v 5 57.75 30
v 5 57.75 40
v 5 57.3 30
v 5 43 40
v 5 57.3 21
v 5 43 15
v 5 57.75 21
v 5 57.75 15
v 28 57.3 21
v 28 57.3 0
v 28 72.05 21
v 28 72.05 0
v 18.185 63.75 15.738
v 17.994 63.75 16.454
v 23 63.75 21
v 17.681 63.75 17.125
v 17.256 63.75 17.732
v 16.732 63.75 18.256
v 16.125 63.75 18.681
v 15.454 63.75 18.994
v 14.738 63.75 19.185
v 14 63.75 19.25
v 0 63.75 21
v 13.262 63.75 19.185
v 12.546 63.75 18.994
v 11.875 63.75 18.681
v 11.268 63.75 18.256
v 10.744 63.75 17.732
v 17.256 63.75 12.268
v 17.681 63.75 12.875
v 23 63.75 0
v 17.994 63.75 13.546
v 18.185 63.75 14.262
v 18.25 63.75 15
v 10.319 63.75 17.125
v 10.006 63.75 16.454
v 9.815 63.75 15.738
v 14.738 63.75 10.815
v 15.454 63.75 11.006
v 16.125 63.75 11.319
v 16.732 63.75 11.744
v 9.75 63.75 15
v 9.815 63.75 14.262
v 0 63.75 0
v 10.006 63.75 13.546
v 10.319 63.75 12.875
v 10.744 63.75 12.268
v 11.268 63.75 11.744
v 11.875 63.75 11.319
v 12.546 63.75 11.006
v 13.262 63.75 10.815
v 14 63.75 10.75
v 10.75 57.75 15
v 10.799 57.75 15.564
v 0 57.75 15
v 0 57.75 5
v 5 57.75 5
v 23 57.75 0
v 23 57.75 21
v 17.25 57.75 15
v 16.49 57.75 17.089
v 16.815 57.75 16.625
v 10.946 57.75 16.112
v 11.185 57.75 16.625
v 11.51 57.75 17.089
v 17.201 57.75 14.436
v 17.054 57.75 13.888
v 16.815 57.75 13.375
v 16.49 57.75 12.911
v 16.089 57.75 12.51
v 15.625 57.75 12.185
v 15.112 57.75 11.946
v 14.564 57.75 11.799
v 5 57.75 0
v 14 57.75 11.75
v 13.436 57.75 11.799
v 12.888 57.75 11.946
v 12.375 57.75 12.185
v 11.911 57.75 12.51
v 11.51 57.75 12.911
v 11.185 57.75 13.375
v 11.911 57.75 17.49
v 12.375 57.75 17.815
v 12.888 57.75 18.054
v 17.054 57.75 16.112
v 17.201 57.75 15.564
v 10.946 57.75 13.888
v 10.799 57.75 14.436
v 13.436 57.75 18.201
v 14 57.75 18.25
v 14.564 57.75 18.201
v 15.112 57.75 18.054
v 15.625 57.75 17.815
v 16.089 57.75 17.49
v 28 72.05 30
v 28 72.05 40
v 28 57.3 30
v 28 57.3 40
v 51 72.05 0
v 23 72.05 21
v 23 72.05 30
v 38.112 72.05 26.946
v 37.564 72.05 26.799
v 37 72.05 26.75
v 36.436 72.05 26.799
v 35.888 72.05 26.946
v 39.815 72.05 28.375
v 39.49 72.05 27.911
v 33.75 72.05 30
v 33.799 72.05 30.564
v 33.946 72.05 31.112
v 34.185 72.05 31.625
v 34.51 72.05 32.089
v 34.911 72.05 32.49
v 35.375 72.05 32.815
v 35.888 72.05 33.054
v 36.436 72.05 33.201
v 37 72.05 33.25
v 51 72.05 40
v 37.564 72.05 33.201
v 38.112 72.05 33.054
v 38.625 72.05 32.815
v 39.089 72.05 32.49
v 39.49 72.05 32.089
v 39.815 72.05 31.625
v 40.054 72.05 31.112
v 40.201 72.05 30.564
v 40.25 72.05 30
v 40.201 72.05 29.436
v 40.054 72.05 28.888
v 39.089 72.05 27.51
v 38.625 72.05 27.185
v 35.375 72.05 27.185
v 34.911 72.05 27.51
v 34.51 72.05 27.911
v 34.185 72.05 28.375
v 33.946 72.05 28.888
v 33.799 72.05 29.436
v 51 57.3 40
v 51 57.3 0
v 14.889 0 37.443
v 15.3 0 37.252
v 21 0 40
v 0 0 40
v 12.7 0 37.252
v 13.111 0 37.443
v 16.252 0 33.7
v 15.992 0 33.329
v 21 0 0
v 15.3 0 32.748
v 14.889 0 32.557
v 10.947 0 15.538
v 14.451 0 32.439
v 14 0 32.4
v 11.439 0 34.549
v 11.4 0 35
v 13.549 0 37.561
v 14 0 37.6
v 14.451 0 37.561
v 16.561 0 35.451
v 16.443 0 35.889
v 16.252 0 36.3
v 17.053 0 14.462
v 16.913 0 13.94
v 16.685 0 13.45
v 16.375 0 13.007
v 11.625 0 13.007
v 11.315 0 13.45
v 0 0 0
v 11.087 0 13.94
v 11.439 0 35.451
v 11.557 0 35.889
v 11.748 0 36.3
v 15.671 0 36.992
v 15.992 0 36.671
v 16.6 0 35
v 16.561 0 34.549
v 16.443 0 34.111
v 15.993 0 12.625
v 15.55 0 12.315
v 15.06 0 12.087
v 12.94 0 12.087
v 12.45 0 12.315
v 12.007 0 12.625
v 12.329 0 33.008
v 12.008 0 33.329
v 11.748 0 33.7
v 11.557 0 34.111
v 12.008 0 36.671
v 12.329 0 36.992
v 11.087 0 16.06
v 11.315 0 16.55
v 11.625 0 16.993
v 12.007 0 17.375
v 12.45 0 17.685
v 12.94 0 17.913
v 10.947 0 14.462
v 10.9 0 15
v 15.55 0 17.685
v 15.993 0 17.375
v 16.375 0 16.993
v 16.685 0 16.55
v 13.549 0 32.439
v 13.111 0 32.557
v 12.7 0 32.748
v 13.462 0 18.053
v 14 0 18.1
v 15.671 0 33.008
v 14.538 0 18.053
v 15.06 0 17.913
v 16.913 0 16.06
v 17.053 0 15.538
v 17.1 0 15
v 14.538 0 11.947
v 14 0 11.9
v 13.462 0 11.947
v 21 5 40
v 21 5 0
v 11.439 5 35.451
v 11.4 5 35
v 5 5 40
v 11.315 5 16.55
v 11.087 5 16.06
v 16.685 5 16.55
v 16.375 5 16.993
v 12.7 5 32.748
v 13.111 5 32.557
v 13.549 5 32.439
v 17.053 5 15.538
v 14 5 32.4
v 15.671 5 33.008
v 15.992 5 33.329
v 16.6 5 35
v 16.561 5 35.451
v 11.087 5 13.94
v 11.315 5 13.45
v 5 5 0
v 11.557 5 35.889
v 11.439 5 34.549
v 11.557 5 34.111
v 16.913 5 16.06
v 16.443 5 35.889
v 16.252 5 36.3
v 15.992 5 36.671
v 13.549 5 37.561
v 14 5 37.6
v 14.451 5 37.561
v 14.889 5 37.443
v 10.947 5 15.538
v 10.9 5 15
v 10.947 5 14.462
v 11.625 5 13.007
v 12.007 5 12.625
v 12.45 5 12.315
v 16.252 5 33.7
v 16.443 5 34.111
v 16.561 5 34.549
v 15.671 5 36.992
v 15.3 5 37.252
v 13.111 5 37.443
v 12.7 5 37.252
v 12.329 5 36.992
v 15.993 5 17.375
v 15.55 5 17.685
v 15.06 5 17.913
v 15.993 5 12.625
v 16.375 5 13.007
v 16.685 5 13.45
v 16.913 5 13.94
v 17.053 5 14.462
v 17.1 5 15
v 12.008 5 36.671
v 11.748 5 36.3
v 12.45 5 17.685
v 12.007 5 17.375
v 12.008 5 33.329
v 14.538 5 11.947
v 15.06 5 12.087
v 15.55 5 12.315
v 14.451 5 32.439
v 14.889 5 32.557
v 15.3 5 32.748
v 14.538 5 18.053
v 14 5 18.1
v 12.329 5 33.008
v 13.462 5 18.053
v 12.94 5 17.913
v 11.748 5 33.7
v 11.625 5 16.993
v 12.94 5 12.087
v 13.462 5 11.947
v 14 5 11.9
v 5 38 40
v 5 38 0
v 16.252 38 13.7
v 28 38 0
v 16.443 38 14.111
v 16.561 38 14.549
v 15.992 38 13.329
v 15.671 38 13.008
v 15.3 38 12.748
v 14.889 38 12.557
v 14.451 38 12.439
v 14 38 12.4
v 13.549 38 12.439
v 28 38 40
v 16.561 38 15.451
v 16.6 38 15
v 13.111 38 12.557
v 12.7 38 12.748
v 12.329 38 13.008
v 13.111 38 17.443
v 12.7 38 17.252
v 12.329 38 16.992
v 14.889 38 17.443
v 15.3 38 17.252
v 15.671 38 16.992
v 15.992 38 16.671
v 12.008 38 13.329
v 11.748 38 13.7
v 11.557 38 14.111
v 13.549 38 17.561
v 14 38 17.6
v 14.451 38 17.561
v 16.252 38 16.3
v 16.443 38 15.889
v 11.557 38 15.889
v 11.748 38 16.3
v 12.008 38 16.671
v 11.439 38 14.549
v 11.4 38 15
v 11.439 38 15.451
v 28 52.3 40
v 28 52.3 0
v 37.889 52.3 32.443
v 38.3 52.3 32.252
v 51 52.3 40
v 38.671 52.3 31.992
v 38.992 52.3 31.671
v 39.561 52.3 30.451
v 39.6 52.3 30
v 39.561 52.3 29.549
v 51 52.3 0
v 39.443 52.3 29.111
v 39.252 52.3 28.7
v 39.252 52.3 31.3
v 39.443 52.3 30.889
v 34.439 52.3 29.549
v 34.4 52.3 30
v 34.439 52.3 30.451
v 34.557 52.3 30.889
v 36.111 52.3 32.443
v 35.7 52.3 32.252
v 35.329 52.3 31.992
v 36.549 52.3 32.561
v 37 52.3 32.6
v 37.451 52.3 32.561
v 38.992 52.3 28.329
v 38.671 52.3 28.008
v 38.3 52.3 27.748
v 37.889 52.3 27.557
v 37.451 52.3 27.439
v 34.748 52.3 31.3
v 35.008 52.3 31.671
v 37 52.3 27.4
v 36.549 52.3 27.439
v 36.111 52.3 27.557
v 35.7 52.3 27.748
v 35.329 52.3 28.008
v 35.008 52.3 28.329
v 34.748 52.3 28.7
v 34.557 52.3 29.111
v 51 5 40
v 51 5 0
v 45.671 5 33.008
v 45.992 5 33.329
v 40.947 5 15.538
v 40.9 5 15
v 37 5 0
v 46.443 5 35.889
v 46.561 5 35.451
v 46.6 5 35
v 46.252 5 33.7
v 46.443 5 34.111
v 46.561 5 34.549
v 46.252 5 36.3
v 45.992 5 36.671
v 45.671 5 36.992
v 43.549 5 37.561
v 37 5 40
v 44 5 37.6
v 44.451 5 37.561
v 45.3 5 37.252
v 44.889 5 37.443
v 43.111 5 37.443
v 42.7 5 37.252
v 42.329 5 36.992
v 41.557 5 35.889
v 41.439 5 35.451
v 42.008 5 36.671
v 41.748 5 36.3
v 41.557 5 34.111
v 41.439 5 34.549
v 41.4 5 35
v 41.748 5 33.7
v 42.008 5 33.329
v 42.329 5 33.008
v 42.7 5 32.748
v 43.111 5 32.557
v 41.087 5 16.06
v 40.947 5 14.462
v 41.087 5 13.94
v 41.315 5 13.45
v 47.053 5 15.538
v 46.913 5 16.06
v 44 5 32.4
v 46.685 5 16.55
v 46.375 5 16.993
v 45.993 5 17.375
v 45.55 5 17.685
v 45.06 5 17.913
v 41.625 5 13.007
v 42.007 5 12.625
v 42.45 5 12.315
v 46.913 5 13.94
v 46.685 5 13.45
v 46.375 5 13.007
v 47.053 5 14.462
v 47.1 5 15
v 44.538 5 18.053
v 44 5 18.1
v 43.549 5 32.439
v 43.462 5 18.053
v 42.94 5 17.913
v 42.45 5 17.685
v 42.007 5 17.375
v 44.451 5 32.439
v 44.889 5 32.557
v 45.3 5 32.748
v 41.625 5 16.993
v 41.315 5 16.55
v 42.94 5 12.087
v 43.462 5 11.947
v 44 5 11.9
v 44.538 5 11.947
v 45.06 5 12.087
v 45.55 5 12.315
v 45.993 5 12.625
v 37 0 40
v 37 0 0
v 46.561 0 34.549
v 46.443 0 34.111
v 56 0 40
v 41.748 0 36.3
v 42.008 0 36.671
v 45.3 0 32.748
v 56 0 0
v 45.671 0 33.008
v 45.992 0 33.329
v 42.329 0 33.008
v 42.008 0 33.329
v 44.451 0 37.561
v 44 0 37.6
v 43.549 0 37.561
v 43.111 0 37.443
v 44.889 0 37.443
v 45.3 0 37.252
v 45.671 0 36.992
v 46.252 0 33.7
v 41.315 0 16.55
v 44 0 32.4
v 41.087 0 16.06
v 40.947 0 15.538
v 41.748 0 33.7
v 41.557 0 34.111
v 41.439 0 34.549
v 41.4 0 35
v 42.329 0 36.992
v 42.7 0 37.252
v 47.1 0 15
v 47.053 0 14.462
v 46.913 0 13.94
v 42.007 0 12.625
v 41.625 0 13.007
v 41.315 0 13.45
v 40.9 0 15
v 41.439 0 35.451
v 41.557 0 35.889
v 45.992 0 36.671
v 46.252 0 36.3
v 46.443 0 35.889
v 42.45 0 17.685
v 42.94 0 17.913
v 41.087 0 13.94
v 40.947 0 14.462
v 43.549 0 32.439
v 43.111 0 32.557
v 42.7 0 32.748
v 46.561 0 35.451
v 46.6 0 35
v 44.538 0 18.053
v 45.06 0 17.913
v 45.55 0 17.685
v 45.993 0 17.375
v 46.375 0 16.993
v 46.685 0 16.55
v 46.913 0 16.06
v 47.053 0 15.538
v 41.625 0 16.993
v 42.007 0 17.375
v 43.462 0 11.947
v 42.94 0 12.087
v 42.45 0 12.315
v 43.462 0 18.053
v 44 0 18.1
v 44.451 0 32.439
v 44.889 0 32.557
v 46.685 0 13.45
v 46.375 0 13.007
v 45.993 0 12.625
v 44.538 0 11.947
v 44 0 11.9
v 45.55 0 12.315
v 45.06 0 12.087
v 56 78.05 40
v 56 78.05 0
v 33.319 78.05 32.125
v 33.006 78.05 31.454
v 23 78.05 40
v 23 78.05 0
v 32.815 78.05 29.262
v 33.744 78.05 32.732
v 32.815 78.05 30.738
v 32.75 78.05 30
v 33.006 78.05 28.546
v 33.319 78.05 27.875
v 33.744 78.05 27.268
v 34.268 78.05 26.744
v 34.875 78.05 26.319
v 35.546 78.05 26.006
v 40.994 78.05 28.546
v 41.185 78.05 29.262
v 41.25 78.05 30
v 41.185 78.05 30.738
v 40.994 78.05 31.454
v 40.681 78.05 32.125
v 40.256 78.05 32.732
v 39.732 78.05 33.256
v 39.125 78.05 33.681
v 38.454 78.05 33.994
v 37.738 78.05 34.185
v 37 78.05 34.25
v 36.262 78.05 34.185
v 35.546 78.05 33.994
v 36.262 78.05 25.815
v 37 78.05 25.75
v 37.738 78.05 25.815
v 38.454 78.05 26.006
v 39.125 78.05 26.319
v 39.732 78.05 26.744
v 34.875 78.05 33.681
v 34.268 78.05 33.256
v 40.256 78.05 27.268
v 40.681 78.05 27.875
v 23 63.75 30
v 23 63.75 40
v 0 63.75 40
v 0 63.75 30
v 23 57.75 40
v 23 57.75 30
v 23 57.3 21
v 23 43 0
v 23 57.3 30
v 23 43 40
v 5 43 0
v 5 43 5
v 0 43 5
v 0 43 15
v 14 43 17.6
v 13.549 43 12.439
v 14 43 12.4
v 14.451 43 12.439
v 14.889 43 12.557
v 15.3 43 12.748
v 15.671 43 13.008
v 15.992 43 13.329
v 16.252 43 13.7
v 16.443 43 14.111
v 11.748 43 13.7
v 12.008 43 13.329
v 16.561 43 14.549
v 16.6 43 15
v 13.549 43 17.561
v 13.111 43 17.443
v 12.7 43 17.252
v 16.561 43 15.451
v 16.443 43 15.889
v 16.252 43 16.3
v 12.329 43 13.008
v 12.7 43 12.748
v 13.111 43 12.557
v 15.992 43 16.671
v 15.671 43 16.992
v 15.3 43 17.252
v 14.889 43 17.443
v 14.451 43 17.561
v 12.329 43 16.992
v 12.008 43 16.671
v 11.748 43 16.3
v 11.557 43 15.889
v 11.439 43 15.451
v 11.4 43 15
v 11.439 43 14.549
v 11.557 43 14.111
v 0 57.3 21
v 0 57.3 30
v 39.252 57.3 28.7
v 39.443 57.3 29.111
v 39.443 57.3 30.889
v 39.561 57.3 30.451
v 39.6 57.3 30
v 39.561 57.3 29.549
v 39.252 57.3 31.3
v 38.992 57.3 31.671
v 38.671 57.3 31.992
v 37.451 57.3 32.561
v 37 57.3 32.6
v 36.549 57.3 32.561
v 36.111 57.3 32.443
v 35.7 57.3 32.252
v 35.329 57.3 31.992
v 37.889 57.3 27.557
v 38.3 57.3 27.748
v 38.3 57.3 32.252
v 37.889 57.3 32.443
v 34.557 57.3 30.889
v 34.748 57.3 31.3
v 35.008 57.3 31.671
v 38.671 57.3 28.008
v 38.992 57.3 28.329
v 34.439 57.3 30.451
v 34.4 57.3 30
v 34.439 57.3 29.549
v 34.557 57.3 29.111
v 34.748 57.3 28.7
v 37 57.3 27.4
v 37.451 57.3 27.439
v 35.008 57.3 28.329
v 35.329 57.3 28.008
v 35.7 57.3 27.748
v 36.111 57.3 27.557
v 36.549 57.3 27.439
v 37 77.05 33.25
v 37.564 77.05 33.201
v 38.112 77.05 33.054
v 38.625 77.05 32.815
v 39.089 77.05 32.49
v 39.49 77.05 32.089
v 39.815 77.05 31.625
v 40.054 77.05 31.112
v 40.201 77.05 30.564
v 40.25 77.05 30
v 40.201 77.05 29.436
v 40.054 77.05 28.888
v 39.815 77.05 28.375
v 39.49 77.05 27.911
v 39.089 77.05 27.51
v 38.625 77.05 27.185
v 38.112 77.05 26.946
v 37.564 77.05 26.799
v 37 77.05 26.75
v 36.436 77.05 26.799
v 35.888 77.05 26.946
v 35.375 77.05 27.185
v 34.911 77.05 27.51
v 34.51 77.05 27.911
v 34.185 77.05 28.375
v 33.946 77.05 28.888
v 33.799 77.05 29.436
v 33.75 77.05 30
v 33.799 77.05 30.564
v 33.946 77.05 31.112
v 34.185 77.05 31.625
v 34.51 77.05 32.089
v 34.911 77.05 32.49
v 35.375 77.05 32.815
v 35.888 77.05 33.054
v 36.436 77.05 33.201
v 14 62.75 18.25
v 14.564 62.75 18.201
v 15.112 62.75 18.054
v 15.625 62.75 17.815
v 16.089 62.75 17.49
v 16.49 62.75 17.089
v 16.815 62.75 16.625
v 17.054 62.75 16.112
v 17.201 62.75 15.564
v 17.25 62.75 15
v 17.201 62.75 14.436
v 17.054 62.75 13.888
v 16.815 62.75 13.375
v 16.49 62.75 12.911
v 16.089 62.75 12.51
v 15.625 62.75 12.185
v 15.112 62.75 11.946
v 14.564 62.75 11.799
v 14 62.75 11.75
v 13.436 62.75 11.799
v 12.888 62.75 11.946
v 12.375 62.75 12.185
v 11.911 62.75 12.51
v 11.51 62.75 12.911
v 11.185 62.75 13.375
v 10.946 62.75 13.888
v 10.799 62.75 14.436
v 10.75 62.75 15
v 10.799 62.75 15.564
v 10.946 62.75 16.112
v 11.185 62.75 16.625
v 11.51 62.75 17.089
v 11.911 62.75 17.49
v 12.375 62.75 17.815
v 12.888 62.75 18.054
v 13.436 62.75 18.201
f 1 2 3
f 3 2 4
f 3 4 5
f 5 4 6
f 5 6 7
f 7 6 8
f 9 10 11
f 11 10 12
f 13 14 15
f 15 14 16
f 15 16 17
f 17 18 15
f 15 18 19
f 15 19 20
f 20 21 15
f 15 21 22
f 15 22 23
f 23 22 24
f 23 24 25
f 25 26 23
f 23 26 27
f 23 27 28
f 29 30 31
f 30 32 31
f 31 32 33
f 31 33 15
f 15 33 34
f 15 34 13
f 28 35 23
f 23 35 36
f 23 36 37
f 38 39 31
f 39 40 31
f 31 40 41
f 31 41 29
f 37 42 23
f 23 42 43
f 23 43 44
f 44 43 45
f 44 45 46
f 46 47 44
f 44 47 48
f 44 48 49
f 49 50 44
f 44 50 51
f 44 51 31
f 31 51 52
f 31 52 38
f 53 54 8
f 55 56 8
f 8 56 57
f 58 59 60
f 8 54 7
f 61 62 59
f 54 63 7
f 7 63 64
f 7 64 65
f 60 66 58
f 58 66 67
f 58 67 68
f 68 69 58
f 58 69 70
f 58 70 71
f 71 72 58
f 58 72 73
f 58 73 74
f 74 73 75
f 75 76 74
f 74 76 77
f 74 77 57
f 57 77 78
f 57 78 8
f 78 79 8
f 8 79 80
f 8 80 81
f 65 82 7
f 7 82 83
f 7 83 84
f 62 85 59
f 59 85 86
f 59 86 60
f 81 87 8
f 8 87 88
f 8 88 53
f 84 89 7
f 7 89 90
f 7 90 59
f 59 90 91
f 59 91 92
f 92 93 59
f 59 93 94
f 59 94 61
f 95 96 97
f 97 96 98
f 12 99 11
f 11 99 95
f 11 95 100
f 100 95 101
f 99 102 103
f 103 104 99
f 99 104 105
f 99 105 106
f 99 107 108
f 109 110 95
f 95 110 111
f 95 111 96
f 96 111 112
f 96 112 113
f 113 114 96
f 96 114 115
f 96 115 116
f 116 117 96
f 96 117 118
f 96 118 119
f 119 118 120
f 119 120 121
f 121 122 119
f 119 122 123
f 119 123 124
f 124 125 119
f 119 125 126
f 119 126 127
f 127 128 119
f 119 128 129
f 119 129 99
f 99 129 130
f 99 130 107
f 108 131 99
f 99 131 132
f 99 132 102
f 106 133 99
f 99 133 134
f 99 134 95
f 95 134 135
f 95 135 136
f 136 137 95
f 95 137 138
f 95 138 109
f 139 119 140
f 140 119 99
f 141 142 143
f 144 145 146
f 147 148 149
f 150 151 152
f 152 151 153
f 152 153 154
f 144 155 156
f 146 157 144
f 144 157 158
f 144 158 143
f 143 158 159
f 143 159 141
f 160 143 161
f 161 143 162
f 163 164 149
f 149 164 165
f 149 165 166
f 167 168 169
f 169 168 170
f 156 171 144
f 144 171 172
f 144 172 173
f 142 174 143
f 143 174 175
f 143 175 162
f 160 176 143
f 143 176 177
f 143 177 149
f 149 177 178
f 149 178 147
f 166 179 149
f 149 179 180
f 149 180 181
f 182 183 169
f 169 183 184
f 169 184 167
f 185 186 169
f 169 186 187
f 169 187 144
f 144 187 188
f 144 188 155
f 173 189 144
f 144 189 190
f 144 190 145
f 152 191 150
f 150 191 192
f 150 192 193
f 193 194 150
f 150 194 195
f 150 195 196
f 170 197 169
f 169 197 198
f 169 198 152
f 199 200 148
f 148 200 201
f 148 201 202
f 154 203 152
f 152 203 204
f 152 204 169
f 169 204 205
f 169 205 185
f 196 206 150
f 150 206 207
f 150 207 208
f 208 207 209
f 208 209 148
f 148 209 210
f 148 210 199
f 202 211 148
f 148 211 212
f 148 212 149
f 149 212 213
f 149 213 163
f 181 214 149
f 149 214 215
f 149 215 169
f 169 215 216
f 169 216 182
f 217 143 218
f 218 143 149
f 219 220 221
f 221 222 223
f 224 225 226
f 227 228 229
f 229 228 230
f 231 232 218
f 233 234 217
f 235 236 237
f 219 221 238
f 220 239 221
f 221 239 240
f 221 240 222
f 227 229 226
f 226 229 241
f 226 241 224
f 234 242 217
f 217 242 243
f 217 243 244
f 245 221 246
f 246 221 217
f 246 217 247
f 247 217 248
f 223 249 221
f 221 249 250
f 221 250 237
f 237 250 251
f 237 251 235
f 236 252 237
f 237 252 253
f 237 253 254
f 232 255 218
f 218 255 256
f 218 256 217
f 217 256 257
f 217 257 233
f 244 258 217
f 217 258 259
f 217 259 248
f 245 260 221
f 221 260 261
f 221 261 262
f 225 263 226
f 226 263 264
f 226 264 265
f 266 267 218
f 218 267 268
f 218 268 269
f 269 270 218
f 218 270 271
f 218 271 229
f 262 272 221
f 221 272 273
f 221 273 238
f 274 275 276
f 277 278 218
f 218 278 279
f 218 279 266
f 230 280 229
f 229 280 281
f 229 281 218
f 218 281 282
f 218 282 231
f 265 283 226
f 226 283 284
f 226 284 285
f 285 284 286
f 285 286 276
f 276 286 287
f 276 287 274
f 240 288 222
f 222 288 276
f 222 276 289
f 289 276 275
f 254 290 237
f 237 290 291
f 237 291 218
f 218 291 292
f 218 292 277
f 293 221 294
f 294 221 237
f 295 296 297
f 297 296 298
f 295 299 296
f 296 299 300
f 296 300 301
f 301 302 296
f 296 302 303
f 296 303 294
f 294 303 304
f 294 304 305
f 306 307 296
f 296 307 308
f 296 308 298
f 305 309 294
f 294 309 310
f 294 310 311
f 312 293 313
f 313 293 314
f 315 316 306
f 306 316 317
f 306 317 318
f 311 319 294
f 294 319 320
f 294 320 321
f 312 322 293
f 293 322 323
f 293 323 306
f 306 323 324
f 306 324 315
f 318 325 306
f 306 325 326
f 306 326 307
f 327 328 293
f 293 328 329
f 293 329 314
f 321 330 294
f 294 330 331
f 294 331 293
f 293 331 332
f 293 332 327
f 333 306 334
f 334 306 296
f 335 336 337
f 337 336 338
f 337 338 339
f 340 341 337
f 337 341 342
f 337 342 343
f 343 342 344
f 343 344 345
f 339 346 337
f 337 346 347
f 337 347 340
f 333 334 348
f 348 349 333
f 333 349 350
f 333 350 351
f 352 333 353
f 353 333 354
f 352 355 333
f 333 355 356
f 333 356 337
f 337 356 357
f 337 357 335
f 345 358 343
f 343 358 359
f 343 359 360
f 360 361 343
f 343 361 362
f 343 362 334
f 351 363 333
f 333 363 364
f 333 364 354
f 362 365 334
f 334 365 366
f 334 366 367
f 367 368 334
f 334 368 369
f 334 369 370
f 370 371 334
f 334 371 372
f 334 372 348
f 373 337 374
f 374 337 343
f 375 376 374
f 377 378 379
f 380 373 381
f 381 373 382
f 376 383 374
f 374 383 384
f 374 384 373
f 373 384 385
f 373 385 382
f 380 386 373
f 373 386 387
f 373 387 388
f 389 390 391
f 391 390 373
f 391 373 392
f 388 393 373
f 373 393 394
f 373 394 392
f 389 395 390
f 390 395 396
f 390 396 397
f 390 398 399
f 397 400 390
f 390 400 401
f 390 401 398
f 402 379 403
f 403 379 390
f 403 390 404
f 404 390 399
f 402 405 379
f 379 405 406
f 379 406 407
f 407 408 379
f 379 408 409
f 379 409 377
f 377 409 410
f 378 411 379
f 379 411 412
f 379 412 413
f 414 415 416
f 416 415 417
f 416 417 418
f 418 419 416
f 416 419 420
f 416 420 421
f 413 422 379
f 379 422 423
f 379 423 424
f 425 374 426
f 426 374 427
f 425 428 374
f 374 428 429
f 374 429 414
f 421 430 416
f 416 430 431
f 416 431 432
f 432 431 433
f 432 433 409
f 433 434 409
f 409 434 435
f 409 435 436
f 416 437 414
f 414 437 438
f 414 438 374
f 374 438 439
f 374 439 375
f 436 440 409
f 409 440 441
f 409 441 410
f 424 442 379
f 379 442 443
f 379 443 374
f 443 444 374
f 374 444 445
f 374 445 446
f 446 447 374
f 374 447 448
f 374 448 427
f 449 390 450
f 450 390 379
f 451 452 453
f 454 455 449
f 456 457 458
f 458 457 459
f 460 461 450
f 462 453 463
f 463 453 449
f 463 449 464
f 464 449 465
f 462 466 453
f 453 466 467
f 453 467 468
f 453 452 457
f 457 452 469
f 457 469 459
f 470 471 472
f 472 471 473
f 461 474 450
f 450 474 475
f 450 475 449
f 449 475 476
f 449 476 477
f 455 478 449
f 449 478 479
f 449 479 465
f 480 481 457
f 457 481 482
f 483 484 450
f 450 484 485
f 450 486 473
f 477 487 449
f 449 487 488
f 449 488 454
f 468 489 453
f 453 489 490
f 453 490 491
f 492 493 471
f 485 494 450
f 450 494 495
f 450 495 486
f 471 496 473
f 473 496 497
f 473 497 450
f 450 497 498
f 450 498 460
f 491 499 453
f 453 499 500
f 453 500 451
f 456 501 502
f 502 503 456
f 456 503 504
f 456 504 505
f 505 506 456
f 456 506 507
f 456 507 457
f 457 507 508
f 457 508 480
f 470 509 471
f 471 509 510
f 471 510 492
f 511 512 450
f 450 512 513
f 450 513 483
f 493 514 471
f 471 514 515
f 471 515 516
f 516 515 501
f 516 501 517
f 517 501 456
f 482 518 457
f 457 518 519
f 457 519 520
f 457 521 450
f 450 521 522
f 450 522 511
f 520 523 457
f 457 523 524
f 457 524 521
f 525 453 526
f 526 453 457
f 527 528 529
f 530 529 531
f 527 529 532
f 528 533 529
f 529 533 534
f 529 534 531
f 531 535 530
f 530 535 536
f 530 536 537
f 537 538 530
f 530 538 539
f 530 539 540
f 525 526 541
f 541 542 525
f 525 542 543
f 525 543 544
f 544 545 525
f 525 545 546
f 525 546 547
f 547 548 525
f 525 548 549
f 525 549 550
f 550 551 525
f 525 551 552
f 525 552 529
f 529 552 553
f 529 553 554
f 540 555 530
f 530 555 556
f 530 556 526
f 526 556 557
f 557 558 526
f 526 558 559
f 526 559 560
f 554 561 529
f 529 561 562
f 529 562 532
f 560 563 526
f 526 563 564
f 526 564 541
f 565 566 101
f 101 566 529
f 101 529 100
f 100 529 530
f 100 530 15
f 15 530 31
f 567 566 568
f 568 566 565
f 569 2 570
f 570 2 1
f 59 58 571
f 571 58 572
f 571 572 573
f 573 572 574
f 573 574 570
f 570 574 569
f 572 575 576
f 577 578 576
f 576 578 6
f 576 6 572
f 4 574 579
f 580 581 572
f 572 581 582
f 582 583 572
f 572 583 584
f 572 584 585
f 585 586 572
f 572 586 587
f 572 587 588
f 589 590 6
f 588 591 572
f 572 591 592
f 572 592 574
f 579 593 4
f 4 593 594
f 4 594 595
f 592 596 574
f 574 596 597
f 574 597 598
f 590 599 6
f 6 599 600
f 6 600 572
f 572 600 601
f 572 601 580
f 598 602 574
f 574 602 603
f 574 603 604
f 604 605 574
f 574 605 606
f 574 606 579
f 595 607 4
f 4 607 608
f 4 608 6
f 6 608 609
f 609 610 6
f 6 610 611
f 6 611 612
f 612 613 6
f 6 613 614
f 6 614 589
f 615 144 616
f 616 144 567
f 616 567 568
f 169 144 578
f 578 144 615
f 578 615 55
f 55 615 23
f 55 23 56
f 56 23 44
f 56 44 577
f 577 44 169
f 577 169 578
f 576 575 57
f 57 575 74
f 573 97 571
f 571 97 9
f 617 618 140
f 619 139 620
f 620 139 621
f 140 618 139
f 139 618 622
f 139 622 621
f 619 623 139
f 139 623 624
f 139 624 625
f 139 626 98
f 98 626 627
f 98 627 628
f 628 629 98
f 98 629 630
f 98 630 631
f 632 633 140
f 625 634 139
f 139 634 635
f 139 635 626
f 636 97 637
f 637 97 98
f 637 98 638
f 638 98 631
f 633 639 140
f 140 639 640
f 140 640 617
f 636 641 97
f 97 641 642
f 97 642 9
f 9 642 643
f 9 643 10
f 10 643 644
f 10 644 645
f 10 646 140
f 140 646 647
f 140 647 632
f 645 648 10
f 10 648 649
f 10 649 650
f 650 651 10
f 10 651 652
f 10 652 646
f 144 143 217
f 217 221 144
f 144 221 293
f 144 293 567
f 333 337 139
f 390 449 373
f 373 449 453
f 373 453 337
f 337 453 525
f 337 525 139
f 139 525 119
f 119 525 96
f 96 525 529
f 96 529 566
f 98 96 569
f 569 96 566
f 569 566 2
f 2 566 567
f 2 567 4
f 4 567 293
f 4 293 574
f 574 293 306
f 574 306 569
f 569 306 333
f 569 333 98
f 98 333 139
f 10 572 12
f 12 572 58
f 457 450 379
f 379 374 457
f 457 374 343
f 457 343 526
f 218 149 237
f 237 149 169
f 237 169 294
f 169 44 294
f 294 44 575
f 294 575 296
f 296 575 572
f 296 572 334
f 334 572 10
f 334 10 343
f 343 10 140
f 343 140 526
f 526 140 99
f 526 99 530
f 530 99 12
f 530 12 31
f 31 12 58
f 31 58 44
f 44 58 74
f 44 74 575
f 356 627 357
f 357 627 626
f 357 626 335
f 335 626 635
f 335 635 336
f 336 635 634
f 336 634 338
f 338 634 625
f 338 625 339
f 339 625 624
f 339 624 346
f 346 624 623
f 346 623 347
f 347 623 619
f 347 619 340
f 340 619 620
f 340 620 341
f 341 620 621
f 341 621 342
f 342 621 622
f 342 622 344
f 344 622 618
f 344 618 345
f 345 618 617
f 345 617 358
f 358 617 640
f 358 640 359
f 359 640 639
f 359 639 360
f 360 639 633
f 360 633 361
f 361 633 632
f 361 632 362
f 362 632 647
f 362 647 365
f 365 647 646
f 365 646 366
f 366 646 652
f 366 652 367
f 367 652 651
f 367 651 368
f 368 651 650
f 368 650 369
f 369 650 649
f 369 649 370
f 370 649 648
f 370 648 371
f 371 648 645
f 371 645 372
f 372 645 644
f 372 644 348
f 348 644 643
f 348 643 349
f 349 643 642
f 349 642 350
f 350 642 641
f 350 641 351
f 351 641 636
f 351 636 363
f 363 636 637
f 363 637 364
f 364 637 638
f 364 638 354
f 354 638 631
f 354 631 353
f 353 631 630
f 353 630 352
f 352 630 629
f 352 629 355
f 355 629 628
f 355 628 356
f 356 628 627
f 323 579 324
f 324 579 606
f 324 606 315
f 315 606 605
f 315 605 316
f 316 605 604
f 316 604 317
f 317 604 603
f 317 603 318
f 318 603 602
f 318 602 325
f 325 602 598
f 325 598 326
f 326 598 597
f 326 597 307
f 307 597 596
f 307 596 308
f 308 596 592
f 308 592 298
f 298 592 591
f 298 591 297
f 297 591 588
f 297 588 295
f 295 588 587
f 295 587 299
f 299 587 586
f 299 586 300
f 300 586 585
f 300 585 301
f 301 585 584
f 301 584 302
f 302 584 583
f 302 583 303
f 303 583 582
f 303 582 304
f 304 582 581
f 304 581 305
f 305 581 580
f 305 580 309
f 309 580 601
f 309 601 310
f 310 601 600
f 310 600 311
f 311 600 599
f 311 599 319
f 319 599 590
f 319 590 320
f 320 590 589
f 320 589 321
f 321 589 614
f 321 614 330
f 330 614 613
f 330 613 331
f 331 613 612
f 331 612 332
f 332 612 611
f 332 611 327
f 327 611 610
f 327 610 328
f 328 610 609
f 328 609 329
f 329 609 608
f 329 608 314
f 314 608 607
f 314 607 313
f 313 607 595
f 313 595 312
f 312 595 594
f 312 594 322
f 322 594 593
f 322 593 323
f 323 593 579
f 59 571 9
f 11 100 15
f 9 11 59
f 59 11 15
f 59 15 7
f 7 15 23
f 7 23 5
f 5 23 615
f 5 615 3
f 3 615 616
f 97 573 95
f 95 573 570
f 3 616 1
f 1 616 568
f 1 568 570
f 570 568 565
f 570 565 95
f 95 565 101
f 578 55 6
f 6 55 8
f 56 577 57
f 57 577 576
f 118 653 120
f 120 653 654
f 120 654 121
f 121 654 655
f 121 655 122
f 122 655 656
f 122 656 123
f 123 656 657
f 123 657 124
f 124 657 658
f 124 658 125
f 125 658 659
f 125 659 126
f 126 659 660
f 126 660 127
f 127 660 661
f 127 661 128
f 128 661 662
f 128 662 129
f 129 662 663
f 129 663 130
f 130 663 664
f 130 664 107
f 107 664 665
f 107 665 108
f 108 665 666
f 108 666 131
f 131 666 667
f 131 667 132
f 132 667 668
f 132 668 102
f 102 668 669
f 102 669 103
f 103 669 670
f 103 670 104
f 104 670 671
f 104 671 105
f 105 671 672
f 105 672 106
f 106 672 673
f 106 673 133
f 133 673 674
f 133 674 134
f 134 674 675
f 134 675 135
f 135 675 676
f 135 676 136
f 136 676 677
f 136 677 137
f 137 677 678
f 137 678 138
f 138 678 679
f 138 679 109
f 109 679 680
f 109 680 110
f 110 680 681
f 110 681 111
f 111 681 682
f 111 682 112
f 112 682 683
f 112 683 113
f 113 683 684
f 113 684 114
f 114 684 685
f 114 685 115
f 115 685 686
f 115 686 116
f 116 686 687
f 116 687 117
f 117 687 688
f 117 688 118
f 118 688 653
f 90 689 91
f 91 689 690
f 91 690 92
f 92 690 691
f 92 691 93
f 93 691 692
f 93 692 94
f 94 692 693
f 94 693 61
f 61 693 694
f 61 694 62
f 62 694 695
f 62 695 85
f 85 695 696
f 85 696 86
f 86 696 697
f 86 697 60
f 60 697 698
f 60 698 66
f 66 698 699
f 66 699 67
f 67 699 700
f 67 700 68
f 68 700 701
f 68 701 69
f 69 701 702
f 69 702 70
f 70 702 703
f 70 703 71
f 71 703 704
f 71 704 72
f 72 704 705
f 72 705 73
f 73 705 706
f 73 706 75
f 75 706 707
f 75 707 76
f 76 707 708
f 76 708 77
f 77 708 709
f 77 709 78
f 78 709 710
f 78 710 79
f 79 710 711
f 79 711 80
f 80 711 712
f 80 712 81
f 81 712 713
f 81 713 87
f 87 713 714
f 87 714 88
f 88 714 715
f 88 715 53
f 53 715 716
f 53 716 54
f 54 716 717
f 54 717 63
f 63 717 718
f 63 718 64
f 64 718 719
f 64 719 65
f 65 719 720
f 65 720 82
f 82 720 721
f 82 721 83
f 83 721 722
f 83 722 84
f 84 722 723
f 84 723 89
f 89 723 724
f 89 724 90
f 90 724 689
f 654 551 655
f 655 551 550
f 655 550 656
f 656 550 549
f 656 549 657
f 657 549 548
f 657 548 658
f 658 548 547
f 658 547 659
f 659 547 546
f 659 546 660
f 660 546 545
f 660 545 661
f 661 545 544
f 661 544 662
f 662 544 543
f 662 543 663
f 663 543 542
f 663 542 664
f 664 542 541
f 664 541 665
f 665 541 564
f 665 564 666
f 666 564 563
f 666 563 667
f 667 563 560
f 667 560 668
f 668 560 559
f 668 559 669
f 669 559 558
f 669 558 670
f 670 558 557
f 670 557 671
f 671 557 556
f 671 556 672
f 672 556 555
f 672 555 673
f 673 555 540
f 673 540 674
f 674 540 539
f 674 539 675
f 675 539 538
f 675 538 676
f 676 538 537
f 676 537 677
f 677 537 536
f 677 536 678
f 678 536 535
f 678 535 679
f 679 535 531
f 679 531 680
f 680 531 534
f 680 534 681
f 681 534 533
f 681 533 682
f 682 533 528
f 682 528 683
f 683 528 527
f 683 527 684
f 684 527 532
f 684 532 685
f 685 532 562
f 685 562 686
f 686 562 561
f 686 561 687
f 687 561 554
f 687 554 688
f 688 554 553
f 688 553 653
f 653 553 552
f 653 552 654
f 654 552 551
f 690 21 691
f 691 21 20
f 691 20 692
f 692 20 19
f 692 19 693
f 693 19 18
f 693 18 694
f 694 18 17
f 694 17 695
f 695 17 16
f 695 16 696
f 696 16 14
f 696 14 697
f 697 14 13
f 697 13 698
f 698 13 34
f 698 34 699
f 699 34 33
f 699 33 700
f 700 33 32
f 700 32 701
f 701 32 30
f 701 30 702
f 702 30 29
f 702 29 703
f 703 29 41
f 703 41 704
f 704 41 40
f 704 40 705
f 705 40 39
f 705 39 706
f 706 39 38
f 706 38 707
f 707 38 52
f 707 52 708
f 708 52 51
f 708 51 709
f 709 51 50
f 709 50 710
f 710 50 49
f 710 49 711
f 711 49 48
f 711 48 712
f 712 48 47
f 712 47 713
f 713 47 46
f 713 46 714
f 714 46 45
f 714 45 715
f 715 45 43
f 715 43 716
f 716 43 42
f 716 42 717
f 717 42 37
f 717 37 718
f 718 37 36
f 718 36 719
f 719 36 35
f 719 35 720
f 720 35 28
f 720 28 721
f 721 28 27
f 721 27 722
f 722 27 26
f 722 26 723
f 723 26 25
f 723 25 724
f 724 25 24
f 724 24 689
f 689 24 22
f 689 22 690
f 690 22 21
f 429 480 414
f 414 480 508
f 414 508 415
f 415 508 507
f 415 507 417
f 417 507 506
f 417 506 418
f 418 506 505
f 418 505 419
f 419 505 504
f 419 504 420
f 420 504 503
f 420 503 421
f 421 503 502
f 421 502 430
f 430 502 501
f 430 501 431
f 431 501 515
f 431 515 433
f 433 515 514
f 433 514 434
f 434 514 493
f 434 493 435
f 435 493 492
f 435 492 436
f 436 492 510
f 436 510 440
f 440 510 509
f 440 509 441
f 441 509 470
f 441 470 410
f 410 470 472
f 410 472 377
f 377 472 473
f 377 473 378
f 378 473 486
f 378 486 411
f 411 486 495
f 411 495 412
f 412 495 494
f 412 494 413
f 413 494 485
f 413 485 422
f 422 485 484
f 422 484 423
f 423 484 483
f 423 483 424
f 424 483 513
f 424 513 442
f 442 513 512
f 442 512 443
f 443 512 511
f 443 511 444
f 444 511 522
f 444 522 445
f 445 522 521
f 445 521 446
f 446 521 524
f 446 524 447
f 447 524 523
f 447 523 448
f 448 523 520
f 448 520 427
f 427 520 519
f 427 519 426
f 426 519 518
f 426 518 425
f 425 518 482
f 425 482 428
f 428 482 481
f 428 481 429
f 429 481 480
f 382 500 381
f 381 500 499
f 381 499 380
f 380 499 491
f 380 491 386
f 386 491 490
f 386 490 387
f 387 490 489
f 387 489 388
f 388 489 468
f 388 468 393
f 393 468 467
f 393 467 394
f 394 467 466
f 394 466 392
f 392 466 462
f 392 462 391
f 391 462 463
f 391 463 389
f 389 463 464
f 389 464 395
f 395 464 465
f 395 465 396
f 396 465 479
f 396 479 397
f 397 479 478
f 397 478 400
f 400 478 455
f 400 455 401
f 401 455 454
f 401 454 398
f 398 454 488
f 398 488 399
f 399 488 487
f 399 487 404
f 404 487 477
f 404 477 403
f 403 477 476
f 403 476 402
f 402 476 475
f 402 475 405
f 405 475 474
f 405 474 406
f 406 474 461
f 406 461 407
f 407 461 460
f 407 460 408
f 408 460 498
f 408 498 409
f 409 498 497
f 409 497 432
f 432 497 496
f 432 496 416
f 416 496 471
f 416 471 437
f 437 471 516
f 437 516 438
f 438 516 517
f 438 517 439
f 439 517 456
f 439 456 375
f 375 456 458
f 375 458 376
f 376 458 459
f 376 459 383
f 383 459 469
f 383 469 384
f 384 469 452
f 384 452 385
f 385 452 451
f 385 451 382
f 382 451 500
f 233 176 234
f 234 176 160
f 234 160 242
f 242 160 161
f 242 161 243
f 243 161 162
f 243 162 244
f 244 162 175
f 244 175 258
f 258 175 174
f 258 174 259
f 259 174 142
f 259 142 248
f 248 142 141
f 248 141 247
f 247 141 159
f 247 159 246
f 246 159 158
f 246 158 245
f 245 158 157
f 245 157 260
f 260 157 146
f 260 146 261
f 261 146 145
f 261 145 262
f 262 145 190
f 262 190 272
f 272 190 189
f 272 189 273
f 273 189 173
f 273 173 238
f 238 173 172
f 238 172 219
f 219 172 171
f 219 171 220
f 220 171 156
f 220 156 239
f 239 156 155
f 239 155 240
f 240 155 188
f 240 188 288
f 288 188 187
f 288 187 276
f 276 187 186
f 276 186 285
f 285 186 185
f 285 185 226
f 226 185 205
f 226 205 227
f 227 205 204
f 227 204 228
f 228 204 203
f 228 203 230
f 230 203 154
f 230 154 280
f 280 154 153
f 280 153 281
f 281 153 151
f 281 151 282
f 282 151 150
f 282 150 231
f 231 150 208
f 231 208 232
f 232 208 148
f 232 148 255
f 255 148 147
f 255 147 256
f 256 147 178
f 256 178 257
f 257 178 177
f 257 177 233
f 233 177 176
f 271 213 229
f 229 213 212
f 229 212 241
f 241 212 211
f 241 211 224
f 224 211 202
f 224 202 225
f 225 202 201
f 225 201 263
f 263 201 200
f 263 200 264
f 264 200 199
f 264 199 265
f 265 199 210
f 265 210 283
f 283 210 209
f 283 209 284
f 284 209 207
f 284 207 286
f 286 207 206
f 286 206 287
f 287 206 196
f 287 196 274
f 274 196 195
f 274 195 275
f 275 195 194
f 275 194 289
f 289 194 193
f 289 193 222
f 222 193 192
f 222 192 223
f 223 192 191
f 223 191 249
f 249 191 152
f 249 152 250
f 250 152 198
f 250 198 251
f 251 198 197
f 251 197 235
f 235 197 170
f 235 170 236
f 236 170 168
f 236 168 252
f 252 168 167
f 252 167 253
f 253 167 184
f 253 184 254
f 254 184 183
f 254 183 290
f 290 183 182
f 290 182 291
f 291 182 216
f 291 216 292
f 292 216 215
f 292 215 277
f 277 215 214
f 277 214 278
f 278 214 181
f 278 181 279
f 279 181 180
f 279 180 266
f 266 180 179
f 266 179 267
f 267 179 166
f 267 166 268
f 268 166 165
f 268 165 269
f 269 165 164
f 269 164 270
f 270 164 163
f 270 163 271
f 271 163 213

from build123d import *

# Parameters (mm, degrees)
SKETCH1_W           = 23
SKETCH1_H           = 14.75
SKETCH1_W_2         = 18
BOSS_EXTRUDE1_DEPTH = 40
CUT_EXTRUDE1_REACH  = 106.057
SKETCH2_R           = 2.6
CUT_EXTRUDE2_REACH  = 94.064
SKETCH3_W           = 9
SKETCH3_H           = 14.75
SKETCH4_W           = 10
SKETCH4_H           = 14.75
CUT_EXTRUDE3_DEPTH  = 102.453449917
CUT_EXTRUDE4_REACH  = 106.057
SKETCH6_R           = 3.25
CHAMFER1_SIZE       = 1
CUT_EXTRUDE5_REACH  = 106.057
SKETCH7_R           = 2.6
SKETCH7_R_2         = 3.1


with BuildPart() as part:
    # Sketch1 → Boss-Extrude1 (new body)
    with BuildSketch(Plane.XY):
        Polygon((0, 0), (0, 63.75), (23, 63.75), (23, 78.05), (56, 78.05), (56, 0), (37, 0), (37, 5), (51, 5), (51, 52.3), (28, 52.3), (28, 38), (5, 38), (5, 5), (21, 5), (21, 0), align=None)
        with Locations((39.5, 64.675)):
            Rectangle(SKETCH1_W, SKETCH1_H, mode=Mode.SUBTRACT)
        with Locations((14, 50.375)):
            Rectangle(SKETCH1_W_2, SKETCH1_H, mode=Mode.SUBTRACT)
    extrude(amount=BOSS_EXTRUDE1_DEPTH)

    # Cut-Extrude1: up to this face of the body (flat: up to its plane)
    cut_extrude1_end = Plane(part.part.faces().sort_by_distance((16.5, 38, 20))[0])
    # Sketch2 → Cut-Extrude1 (cut, up to the picked face)
    with BuildSketch(Plane(origin=(0, 78.05, 0), x_dir=(1, 0, 0), z_dir=(0, 1, 0)), mode=Mode.PRIVATE) as cut_extrude1_sk1:
        with Locations(Location((14, -15, 0), (0, 0, 270))):
            Circle(SKETCH2_R)
    cut_extrude1_tool1 = split(extrude(cut_extrude1_sk1.sketch, amount=-CUT_EXTRUDE1_REACH, mode=Mode.PRIVATE), bisect_by=cut_extrude1_end, keep=Keep.BOTH, mode=Mode.PRIVATE)
    # Sketch2 → Cut-Extrude1 (cut, up to the picked face)
    with BuildSketch(Plane(origin=(0, 78.05, 0), x_dir=(1, 0, 0), z_dir=(0, 1, 0)), mode=Mode.PRIVATE) as cut_extrude1_sk2:
        with Locations((37, -30)):
            Circle(SKETCH2_R)
    cut_extrude1_tool2 = split(extrude(cut_extrude1_sk2.sketch, amount=-CUT_EXTRUDE1_REACH, mode=Mode.PRIVATE), bisect_by=cut_extrude1_end, keep=Keep.BOTH, mode=Mode.PRIVATE)
    add(cut_extrude1_tool1.solids().sort_by(Axis((14, 78.05, 15), (0, -1, 0)))[0], mode=Mode.SUBTRACT)
    add(cut_extrude1_tool2.solids().sort_by(Axis((37, 78.05, 30), (0, -1, 0)))[0], mode=Mode.SUBTRACT)

    # Sketch3 → Cut-Extrude2 (cut, up to next)
    with BuildSketch(Plane(origin=(28, 0, 0), x_dir=(0, 0, -1), z_dir=(1, 0, 0)), mode=Mode.PRIVATE) as cut_extrude2_sk1:
        with Locations((-25.5, 64.675)):
            Rectangle(SKETCH3_W, SKETCH3_H)
    cut_extrude2_tool1 = extrude(cut_extrude2_sk1.sketch, amount=-CUT_EXTRUDE2_REACH, mode=Mode.PRIVATE) & part.part
    add(cut_extrude2_tool1.solids().sort_by_distance((28, 64.675, 25.5))[0], mode=Mode.SUBTRACT)

    # Sketch4 → Cut-Extrude3 (cut, through all)
    with BuildSketch(Plane(origin=(5, 0, 0), x_dir=(0, 0, -1), z_dir=(1, 0, 0))):
        with Locations((-10, 50.375)):
            Rectangle(SKETCH4_W, SKETCH4_H)
    extrude(amount=-CUT_EXTRUDE3_DEPTH, mode=Mode.SUBTRACT)

    # Sketch6 → Cut-Extrude4 (cut, up to next)
    with BuildSketch(Plane(origin=(0, 78.05, 0), x_dir=(1, 0, 0), z_dir=(0, 1, 0)), mode=Mode.PRIVATE) as cut_extrude4_sk1:
        with Locations(Location((14, -15, 0), (0, 0, 270))):
            Circle(SKETCH6_R)
    cut_extrude4_tool1 = extrude(cut_extrude4_sk1.sketch, amount=-CUT_EXTRUDE4_REACH, mode=Mode.PRIVATE) & part.part
    # Sketch6 → Cut-Extrude4 (cut, up to next)
    with BuildSketch(Plane(origin=(0, 78.05, 0), x_dir=(1, 0, 0), z_dir=(0, 1, 0)), mode=Mode.PRIVATE) as cut_extrude4_sk2:
        with Locations(Location((37, -30, 0), (0, 0, 270))):
            Circle(SKETCH6_R)
    cut_extrude4_tool2 = extrude(cut_extrude4_sk2.sketch, amount=-CUT_EXTRUDE4_REACH, mode=Mode.PRIVATE) & part.part
    add(cut_extrude4_tool1.solids().sort_by_distance((14, 78.05, 15))[0], mode=Mode.SUBTRACT)
    add(cut_extrude4_tool2.solids().sort_by_distance((37, 78.05, 30))[0], mode=Mode.SUBTRACT)

    # Chamfer1
    chamfer1_edges = [part.edges().sort_by_distance(p)[0] for p in [
        (14, 63.75, 11.75),
        (37, 78.05, 26.75),
    ]]
    chamfer(chamfer1_edges, length=CHAMFER1_SIZE)

    # Sketch7 → Cut-Extrude5 (cut, up to next)
    with BuildSketch(Plane.XZ, mode=Mode.PRIVATE) as cut_extrude5_sk1:
        with Locations((14, 35)):
            Circle(SKETCH7_R)
    cut_extrude5_tool1 = extrude(cut_extrude5_sk1.sketch, amount=-CUT_EXTRUDE5_REACH, mode=Mode.PRIVATE) & part.part
    # Sketch7 → Cut-Extrude5 (cut, up to next)
    with BuildSketch(Plane.XZ, mode=Mode.PRIVATE) as cut_extrude5_sk2:
        with Locations((44, 35)):
            Circle(SKETCH7_R)
    cut_extrude5_tool2 = extrude(cut_extrude5_sk2.sketch, amount=-CUT_EXTRUDE5_REACH, mode=Mode.PRIVATE) & part.part
    # Sketch7 → Cut-Extrude5 (cut, up to next)
    with BuildSketch(Plane.XZ, mode=Mode.PRIVATE) as cut_extrude5_sk3:
        with Locations((14, 15)):
            Circle(SKETCH7_R_2)
    cut_extrude5_tool3 = extrude(cut_extrude5_sk3.sketch, amount=-CUT_EXTRUDE5_REACH, mode=Mode.PRIVATE) & part.part
    # Sketch7 → Cut-Extrude5 (cut, up to next)
    with BuildSketch(Plane.XZ, mode=Mode.PRIVATE) as cut_extrude5_sk4:
        with Locations((44, 15)):
            Circle(SKETCH7_R_2)
    cut_extrude5_tool4 = extrude(cut_extrude5_sk4.sketch, amount=-CUT_EXTRUDE5_REACH, mode=Mode.PRIVATE) & part.part
    add(cut_extrude5_tool1.solids().sort_by_distance((14, 0, 35))[0], mode=Mode.SUBTRACT)
    add(cut_extrude5_tool2.solids().sort_by_distance((44, 0, 35))[0], mode=Mode.SUBTRACT)
    add(cut_extrude5_tool3.solids().sort_by_distance((14, 0, 15))[0], mode=Mode.SUBTRACT)
    add(cut_extrude5_tool4.solids().sort_by_distance((44, 0, 15))[0], mode=Mode.SUBTRACT)


solid = part.part
